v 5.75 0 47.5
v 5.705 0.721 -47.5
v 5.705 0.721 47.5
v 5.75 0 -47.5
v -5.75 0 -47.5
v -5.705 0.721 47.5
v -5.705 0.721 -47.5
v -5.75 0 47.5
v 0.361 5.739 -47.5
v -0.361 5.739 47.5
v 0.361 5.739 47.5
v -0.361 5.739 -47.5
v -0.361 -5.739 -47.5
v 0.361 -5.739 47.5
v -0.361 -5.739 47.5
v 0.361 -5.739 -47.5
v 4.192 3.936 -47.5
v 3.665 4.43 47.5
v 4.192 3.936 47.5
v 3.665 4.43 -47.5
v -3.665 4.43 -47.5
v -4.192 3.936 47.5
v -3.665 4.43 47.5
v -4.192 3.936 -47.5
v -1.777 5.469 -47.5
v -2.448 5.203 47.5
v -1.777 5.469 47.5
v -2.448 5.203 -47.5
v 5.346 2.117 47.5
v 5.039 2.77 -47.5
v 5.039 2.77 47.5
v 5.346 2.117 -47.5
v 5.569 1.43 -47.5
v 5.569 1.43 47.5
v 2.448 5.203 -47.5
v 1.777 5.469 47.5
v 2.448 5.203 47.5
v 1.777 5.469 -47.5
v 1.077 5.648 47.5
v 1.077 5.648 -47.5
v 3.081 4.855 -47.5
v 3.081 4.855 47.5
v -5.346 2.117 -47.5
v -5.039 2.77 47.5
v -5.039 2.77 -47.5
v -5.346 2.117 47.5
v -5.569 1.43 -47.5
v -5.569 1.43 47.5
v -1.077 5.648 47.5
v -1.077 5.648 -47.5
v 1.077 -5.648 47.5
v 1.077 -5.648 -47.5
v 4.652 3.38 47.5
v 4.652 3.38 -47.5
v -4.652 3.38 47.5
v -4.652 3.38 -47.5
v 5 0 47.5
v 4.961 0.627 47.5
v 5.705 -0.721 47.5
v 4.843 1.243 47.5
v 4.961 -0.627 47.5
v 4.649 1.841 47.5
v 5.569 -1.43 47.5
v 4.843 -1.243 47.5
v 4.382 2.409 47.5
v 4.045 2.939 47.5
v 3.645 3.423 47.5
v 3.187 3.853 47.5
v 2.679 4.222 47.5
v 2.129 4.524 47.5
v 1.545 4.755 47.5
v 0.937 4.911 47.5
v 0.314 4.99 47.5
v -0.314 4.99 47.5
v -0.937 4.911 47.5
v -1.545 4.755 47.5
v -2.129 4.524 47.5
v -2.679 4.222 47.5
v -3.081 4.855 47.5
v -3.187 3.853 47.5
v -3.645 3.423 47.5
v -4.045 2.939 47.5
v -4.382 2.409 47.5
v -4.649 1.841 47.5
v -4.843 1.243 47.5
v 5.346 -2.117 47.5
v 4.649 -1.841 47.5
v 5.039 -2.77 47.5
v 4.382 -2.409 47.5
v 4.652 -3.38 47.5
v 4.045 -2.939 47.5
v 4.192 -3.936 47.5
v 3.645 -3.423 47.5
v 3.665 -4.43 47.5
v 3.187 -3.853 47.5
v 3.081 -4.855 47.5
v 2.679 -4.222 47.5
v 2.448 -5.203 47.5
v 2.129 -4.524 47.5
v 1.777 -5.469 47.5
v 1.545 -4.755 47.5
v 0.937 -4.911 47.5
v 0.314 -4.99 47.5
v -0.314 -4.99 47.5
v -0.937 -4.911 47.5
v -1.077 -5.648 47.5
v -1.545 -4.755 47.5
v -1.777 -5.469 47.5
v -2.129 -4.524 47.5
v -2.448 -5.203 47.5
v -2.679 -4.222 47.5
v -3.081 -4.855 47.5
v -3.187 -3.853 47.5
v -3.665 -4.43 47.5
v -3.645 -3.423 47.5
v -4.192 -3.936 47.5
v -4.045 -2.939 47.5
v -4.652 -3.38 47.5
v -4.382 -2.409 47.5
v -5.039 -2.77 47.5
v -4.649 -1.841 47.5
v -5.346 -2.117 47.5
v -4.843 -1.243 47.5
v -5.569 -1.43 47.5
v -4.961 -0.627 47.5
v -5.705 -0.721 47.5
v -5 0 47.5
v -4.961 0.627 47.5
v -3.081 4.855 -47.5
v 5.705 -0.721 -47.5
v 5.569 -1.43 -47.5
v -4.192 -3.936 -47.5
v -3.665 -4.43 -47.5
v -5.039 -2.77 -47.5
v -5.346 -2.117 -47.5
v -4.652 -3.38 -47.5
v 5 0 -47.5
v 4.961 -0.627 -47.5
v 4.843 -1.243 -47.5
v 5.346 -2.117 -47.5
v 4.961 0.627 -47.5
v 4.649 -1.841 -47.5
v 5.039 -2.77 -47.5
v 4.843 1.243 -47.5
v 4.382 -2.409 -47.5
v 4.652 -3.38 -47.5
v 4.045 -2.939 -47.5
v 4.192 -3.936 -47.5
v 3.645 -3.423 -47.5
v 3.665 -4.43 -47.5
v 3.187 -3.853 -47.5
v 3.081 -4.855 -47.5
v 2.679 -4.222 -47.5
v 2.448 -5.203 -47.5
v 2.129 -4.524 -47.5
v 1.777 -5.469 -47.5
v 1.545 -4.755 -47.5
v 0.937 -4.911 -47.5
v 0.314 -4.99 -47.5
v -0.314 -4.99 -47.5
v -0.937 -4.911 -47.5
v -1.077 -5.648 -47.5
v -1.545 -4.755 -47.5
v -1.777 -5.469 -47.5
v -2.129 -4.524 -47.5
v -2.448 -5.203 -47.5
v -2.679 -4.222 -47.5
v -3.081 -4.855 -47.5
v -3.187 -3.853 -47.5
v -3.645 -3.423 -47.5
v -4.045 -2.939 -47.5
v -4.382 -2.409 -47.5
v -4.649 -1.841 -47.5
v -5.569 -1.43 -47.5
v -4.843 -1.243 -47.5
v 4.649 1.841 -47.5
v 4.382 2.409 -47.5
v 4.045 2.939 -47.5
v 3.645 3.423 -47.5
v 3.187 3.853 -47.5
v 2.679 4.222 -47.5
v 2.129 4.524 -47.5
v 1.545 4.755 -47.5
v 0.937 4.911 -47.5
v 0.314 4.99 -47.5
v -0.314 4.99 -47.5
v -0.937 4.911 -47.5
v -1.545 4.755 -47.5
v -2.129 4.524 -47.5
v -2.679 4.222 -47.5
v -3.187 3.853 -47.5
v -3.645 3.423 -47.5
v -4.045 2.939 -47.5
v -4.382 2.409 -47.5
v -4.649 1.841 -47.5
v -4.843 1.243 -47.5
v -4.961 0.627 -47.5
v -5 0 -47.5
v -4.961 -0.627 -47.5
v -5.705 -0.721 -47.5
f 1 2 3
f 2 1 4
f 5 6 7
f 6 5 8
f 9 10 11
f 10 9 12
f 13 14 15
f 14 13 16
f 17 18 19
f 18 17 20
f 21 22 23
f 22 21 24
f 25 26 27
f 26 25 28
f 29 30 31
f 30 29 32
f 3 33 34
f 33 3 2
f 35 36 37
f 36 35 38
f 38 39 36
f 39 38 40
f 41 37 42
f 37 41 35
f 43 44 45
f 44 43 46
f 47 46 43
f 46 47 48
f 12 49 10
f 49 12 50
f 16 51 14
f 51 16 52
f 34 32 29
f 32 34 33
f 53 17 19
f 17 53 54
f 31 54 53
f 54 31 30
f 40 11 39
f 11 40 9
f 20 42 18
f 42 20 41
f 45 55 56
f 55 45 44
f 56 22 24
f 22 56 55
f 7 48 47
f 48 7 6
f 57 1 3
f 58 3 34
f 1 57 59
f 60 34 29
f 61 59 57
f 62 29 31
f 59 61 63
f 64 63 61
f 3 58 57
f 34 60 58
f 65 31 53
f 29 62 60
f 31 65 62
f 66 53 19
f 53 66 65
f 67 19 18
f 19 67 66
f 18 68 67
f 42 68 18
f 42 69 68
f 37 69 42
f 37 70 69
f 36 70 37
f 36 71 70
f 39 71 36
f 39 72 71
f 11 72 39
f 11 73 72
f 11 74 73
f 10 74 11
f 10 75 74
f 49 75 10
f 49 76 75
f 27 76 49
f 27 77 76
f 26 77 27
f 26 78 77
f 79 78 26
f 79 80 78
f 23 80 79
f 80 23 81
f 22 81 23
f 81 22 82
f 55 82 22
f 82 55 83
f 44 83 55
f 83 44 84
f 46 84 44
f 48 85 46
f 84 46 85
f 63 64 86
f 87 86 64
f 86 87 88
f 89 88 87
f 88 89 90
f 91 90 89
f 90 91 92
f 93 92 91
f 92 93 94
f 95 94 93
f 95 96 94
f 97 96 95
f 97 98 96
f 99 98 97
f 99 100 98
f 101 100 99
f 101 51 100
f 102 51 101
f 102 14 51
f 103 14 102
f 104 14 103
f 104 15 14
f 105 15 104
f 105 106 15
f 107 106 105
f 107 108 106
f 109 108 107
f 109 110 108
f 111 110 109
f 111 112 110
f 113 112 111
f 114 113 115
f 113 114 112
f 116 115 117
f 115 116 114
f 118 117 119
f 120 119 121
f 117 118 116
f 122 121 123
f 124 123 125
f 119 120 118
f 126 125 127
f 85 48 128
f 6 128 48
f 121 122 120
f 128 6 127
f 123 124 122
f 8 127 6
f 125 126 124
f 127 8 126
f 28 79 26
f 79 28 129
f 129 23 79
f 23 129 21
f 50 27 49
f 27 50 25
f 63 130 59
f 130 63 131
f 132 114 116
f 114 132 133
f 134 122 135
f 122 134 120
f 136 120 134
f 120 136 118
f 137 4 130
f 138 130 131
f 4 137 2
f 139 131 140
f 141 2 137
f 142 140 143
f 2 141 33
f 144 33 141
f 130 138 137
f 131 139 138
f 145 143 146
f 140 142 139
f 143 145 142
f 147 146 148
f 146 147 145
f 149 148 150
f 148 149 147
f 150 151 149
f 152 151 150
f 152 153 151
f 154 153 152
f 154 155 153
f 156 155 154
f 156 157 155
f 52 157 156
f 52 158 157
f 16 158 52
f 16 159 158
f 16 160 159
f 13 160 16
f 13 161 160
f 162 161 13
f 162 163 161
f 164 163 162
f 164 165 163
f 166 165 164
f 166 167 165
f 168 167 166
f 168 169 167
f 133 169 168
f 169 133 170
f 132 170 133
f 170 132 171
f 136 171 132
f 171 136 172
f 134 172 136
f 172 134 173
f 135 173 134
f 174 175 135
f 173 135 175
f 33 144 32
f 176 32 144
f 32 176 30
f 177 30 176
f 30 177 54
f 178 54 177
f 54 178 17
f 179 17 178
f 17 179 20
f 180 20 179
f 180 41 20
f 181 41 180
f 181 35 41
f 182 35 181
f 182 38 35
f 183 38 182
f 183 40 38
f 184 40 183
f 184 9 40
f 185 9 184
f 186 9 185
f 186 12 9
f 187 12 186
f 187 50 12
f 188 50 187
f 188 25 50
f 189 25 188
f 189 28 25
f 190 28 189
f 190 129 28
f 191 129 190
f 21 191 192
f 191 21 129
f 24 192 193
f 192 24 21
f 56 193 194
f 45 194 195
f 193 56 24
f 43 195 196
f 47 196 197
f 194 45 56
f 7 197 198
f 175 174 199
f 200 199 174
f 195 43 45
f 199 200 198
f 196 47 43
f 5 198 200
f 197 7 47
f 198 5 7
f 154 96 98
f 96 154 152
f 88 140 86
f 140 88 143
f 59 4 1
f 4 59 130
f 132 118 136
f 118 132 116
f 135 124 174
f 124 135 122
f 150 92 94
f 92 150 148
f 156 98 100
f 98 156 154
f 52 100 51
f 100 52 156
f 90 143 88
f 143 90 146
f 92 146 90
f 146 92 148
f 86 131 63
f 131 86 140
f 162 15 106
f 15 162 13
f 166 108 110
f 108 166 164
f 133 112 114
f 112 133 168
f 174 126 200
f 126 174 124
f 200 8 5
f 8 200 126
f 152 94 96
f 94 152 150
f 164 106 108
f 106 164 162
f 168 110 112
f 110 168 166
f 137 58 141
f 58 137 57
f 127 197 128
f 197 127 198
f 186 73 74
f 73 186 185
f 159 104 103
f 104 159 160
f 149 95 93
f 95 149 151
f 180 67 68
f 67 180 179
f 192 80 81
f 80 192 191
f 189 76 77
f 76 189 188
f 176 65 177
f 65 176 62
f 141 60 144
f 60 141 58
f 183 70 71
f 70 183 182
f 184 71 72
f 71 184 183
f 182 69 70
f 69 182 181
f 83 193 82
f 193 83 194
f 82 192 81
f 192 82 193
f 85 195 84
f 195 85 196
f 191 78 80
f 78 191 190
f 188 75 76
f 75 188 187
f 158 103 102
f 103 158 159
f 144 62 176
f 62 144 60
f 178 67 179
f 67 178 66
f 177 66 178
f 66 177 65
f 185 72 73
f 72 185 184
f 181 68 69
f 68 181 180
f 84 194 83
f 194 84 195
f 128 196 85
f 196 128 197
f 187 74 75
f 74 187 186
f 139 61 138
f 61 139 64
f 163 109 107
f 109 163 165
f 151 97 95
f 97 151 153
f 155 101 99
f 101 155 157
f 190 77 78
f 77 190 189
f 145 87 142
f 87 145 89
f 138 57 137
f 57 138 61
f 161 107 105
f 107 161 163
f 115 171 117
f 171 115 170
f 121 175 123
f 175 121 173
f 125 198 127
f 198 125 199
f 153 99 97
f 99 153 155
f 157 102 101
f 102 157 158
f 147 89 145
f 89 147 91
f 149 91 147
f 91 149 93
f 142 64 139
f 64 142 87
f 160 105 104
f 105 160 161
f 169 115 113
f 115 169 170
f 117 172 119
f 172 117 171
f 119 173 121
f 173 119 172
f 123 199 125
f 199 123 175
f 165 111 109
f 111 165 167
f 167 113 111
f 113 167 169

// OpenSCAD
$fn = 50;


difference() {
	union() {
		translate(v = [0, 0, -47.5000000000]) {
			cylinder(h = 95, r = 5.7500000000);
		}
	}
	union() {
		translate(v = [0, 0, -100.0000000000]) {
			cylinder(h = 200, r = 5.0000000000);
		}
	}
}
